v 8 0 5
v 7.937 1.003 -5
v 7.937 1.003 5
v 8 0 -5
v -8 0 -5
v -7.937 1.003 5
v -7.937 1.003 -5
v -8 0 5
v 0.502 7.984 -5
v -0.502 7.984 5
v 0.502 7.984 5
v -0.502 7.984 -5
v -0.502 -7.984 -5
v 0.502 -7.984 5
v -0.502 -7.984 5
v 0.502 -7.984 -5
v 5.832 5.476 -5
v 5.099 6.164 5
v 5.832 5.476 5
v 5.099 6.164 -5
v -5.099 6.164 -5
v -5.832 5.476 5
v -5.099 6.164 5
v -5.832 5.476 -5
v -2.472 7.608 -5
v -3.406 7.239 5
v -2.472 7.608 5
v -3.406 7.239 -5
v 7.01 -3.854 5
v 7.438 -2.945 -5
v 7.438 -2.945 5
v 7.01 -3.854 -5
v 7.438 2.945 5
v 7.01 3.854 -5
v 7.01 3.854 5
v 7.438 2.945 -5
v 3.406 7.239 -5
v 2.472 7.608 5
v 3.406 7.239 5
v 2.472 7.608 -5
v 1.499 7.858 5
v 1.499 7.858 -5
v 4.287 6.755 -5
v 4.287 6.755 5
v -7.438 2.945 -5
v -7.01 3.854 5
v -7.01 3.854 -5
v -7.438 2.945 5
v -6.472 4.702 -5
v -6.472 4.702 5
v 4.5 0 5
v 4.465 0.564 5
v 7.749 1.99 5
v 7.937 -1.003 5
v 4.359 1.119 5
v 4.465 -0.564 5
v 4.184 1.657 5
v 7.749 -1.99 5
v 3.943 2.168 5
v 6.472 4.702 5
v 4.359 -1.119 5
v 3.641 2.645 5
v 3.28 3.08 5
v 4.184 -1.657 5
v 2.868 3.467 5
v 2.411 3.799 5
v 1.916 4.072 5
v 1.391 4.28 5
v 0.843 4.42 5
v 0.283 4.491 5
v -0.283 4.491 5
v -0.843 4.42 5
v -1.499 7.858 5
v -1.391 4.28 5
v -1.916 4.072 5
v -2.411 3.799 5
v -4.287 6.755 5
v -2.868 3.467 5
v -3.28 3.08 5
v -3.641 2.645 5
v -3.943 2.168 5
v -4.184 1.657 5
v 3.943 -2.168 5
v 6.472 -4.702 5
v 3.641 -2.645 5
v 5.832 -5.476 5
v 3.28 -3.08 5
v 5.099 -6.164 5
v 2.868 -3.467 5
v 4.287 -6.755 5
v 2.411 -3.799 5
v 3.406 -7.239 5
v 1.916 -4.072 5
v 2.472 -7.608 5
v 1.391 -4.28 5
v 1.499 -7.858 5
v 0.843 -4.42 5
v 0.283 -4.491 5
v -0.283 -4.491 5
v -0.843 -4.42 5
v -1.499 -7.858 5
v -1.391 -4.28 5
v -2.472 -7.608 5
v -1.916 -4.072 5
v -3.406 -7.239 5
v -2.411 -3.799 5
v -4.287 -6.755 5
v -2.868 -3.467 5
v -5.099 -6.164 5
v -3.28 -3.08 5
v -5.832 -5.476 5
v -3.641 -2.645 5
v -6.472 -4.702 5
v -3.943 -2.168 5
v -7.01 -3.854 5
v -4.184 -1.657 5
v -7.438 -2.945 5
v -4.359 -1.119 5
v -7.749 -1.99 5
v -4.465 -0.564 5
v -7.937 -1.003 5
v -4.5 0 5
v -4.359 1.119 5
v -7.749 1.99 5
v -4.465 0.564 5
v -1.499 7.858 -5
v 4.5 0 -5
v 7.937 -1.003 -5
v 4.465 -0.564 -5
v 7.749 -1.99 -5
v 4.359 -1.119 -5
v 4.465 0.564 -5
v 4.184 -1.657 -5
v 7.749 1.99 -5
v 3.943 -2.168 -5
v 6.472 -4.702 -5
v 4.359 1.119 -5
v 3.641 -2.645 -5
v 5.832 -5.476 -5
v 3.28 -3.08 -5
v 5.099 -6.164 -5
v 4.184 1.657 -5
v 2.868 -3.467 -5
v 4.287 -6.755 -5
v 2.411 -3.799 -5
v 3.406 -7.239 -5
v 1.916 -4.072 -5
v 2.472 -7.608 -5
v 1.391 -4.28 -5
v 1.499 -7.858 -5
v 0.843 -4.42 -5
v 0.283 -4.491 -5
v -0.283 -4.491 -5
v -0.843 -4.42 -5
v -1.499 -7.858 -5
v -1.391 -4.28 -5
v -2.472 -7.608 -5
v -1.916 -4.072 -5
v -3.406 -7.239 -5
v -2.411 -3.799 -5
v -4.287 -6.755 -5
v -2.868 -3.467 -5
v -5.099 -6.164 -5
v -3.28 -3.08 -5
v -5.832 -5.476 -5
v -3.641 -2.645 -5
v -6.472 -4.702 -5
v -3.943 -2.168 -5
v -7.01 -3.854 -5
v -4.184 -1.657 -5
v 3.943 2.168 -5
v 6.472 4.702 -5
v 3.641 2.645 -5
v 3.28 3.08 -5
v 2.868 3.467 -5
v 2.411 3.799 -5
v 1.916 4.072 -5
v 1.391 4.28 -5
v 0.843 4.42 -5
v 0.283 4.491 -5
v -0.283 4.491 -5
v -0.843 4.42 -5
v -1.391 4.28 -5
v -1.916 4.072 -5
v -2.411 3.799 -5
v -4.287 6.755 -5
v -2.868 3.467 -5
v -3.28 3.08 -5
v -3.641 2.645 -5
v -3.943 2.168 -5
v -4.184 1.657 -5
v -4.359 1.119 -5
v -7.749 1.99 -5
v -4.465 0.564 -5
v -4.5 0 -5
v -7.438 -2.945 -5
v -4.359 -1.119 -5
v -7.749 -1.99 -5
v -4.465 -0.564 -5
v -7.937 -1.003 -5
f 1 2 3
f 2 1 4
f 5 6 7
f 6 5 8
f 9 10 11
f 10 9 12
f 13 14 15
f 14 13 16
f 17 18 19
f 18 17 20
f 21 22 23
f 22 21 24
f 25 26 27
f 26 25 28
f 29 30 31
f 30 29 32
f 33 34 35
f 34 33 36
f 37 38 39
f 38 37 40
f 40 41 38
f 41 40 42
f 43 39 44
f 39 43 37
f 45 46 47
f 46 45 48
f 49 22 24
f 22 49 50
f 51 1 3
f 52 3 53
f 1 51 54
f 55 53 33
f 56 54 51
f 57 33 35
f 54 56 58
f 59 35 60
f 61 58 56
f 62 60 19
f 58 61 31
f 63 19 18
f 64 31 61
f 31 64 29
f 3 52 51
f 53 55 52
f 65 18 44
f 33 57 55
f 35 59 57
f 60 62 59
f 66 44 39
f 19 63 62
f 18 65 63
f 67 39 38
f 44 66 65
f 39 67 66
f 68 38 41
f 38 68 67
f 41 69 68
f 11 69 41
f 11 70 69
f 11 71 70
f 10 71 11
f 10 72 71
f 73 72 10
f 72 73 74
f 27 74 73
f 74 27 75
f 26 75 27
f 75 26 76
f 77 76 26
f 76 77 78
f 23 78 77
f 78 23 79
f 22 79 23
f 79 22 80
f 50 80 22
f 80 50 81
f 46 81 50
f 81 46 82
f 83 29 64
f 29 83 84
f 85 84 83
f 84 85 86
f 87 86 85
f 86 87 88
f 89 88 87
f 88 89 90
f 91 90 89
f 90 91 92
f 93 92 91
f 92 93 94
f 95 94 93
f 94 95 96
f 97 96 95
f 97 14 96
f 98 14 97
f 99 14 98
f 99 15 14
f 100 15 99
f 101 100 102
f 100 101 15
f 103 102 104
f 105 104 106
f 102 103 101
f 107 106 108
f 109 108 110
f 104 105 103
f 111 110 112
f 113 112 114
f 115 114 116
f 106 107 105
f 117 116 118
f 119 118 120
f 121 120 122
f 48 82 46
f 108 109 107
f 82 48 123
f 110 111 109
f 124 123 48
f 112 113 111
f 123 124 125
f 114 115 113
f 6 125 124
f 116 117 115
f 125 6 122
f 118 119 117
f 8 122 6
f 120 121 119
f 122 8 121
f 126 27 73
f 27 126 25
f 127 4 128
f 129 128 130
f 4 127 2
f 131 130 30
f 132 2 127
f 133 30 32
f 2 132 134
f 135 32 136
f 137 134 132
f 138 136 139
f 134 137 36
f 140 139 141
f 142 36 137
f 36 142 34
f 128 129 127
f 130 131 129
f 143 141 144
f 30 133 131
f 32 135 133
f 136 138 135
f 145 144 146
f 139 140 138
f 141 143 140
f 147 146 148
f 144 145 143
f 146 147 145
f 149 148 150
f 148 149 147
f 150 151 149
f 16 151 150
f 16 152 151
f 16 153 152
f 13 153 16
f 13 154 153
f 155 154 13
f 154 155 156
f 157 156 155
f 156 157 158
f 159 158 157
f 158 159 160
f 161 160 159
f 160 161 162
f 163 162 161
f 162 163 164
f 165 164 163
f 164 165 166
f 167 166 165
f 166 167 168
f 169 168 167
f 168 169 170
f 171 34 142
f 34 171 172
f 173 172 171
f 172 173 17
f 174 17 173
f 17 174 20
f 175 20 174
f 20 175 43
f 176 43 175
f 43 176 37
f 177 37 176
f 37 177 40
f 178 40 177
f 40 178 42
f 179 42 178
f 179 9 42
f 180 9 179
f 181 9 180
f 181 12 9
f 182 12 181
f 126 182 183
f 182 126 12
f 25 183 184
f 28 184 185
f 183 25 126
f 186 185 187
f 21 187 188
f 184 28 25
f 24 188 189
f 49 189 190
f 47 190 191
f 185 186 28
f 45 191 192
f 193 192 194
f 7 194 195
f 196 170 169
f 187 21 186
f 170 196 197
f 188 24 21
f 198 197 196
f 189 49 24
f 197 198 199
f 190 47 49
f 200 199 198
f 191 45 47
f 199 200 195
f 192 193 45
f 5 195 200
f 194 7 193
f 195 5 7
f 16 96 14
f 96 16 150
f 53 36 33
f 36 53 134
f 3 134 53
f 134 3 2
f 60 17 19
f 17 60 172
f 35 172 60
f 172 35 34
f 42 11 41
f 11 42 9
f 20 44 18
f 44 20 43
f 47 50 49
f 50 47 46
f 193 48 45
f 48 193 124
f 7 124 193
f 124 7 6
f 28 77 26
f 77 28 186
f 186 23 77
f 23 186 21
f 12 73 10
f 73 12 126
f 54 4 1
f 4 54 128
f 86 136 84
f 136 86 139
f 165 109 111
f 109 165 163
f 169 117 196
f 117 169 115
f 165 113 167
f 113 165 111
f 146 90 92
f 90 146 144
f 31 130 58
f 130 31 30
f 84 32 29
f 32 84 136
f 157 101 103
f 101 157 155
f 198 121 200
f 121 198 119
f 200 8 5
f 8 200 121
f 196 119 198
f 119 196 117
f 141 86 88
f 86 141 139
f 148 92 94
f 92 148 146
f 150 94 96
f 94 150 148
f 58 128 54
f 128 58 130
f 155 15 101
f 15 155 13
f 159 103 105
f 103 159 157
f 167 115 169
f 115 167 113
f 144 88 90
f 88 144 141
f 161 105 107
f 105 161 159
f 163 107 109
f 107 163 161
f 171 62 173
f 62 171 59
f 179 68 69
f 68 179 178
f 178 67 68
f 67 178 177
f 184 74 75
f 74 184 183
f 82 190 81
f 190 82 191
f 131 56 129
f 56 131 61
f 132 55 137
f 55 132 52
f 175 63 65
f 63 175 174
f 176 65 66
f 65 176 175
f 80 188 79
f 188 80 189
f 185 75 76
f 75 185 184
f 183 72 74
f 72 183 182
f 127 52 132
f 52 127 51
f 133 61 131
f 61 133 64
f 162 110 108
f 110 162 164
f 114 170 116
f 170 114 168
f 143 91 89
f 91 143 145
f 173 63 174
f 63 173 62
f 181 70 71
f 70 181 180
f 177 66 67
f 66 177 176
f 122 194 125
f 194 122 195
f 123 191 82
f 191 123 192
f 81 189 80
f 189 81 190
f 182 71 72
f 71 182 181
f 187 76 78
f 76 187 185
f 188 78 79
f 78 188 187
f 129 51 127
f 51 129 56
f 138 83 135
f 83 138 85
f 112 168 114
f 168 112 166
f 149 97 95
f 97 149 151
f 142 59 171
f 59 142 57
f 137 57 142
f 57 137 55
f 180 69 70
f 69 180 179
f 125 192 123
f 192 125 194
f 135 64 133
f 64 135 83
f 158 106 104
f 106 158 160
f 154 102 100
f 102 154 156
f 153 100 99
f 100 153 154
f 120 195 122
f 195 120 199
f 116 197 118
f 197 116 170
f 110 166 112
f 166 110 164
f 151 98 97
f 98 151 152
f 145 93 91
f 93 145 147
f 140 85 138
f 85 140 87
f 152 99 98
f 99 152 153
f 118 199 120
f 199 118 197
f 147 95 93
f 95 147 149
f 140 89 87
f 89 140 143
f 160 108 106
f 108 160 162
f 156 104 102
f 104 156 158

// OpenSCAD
$fn = 50;


difference() {
	union() {
		translate(v = [0, 0, -5.0000000000]) {
			cylinder(h = 10, r = 8.0000000000);
		}
	}
	union() {
		translate(v = [0, 0, -100.0000000000]) {
			cylinder(h = 200, r = 4.5000000000);
		}
	}
}
